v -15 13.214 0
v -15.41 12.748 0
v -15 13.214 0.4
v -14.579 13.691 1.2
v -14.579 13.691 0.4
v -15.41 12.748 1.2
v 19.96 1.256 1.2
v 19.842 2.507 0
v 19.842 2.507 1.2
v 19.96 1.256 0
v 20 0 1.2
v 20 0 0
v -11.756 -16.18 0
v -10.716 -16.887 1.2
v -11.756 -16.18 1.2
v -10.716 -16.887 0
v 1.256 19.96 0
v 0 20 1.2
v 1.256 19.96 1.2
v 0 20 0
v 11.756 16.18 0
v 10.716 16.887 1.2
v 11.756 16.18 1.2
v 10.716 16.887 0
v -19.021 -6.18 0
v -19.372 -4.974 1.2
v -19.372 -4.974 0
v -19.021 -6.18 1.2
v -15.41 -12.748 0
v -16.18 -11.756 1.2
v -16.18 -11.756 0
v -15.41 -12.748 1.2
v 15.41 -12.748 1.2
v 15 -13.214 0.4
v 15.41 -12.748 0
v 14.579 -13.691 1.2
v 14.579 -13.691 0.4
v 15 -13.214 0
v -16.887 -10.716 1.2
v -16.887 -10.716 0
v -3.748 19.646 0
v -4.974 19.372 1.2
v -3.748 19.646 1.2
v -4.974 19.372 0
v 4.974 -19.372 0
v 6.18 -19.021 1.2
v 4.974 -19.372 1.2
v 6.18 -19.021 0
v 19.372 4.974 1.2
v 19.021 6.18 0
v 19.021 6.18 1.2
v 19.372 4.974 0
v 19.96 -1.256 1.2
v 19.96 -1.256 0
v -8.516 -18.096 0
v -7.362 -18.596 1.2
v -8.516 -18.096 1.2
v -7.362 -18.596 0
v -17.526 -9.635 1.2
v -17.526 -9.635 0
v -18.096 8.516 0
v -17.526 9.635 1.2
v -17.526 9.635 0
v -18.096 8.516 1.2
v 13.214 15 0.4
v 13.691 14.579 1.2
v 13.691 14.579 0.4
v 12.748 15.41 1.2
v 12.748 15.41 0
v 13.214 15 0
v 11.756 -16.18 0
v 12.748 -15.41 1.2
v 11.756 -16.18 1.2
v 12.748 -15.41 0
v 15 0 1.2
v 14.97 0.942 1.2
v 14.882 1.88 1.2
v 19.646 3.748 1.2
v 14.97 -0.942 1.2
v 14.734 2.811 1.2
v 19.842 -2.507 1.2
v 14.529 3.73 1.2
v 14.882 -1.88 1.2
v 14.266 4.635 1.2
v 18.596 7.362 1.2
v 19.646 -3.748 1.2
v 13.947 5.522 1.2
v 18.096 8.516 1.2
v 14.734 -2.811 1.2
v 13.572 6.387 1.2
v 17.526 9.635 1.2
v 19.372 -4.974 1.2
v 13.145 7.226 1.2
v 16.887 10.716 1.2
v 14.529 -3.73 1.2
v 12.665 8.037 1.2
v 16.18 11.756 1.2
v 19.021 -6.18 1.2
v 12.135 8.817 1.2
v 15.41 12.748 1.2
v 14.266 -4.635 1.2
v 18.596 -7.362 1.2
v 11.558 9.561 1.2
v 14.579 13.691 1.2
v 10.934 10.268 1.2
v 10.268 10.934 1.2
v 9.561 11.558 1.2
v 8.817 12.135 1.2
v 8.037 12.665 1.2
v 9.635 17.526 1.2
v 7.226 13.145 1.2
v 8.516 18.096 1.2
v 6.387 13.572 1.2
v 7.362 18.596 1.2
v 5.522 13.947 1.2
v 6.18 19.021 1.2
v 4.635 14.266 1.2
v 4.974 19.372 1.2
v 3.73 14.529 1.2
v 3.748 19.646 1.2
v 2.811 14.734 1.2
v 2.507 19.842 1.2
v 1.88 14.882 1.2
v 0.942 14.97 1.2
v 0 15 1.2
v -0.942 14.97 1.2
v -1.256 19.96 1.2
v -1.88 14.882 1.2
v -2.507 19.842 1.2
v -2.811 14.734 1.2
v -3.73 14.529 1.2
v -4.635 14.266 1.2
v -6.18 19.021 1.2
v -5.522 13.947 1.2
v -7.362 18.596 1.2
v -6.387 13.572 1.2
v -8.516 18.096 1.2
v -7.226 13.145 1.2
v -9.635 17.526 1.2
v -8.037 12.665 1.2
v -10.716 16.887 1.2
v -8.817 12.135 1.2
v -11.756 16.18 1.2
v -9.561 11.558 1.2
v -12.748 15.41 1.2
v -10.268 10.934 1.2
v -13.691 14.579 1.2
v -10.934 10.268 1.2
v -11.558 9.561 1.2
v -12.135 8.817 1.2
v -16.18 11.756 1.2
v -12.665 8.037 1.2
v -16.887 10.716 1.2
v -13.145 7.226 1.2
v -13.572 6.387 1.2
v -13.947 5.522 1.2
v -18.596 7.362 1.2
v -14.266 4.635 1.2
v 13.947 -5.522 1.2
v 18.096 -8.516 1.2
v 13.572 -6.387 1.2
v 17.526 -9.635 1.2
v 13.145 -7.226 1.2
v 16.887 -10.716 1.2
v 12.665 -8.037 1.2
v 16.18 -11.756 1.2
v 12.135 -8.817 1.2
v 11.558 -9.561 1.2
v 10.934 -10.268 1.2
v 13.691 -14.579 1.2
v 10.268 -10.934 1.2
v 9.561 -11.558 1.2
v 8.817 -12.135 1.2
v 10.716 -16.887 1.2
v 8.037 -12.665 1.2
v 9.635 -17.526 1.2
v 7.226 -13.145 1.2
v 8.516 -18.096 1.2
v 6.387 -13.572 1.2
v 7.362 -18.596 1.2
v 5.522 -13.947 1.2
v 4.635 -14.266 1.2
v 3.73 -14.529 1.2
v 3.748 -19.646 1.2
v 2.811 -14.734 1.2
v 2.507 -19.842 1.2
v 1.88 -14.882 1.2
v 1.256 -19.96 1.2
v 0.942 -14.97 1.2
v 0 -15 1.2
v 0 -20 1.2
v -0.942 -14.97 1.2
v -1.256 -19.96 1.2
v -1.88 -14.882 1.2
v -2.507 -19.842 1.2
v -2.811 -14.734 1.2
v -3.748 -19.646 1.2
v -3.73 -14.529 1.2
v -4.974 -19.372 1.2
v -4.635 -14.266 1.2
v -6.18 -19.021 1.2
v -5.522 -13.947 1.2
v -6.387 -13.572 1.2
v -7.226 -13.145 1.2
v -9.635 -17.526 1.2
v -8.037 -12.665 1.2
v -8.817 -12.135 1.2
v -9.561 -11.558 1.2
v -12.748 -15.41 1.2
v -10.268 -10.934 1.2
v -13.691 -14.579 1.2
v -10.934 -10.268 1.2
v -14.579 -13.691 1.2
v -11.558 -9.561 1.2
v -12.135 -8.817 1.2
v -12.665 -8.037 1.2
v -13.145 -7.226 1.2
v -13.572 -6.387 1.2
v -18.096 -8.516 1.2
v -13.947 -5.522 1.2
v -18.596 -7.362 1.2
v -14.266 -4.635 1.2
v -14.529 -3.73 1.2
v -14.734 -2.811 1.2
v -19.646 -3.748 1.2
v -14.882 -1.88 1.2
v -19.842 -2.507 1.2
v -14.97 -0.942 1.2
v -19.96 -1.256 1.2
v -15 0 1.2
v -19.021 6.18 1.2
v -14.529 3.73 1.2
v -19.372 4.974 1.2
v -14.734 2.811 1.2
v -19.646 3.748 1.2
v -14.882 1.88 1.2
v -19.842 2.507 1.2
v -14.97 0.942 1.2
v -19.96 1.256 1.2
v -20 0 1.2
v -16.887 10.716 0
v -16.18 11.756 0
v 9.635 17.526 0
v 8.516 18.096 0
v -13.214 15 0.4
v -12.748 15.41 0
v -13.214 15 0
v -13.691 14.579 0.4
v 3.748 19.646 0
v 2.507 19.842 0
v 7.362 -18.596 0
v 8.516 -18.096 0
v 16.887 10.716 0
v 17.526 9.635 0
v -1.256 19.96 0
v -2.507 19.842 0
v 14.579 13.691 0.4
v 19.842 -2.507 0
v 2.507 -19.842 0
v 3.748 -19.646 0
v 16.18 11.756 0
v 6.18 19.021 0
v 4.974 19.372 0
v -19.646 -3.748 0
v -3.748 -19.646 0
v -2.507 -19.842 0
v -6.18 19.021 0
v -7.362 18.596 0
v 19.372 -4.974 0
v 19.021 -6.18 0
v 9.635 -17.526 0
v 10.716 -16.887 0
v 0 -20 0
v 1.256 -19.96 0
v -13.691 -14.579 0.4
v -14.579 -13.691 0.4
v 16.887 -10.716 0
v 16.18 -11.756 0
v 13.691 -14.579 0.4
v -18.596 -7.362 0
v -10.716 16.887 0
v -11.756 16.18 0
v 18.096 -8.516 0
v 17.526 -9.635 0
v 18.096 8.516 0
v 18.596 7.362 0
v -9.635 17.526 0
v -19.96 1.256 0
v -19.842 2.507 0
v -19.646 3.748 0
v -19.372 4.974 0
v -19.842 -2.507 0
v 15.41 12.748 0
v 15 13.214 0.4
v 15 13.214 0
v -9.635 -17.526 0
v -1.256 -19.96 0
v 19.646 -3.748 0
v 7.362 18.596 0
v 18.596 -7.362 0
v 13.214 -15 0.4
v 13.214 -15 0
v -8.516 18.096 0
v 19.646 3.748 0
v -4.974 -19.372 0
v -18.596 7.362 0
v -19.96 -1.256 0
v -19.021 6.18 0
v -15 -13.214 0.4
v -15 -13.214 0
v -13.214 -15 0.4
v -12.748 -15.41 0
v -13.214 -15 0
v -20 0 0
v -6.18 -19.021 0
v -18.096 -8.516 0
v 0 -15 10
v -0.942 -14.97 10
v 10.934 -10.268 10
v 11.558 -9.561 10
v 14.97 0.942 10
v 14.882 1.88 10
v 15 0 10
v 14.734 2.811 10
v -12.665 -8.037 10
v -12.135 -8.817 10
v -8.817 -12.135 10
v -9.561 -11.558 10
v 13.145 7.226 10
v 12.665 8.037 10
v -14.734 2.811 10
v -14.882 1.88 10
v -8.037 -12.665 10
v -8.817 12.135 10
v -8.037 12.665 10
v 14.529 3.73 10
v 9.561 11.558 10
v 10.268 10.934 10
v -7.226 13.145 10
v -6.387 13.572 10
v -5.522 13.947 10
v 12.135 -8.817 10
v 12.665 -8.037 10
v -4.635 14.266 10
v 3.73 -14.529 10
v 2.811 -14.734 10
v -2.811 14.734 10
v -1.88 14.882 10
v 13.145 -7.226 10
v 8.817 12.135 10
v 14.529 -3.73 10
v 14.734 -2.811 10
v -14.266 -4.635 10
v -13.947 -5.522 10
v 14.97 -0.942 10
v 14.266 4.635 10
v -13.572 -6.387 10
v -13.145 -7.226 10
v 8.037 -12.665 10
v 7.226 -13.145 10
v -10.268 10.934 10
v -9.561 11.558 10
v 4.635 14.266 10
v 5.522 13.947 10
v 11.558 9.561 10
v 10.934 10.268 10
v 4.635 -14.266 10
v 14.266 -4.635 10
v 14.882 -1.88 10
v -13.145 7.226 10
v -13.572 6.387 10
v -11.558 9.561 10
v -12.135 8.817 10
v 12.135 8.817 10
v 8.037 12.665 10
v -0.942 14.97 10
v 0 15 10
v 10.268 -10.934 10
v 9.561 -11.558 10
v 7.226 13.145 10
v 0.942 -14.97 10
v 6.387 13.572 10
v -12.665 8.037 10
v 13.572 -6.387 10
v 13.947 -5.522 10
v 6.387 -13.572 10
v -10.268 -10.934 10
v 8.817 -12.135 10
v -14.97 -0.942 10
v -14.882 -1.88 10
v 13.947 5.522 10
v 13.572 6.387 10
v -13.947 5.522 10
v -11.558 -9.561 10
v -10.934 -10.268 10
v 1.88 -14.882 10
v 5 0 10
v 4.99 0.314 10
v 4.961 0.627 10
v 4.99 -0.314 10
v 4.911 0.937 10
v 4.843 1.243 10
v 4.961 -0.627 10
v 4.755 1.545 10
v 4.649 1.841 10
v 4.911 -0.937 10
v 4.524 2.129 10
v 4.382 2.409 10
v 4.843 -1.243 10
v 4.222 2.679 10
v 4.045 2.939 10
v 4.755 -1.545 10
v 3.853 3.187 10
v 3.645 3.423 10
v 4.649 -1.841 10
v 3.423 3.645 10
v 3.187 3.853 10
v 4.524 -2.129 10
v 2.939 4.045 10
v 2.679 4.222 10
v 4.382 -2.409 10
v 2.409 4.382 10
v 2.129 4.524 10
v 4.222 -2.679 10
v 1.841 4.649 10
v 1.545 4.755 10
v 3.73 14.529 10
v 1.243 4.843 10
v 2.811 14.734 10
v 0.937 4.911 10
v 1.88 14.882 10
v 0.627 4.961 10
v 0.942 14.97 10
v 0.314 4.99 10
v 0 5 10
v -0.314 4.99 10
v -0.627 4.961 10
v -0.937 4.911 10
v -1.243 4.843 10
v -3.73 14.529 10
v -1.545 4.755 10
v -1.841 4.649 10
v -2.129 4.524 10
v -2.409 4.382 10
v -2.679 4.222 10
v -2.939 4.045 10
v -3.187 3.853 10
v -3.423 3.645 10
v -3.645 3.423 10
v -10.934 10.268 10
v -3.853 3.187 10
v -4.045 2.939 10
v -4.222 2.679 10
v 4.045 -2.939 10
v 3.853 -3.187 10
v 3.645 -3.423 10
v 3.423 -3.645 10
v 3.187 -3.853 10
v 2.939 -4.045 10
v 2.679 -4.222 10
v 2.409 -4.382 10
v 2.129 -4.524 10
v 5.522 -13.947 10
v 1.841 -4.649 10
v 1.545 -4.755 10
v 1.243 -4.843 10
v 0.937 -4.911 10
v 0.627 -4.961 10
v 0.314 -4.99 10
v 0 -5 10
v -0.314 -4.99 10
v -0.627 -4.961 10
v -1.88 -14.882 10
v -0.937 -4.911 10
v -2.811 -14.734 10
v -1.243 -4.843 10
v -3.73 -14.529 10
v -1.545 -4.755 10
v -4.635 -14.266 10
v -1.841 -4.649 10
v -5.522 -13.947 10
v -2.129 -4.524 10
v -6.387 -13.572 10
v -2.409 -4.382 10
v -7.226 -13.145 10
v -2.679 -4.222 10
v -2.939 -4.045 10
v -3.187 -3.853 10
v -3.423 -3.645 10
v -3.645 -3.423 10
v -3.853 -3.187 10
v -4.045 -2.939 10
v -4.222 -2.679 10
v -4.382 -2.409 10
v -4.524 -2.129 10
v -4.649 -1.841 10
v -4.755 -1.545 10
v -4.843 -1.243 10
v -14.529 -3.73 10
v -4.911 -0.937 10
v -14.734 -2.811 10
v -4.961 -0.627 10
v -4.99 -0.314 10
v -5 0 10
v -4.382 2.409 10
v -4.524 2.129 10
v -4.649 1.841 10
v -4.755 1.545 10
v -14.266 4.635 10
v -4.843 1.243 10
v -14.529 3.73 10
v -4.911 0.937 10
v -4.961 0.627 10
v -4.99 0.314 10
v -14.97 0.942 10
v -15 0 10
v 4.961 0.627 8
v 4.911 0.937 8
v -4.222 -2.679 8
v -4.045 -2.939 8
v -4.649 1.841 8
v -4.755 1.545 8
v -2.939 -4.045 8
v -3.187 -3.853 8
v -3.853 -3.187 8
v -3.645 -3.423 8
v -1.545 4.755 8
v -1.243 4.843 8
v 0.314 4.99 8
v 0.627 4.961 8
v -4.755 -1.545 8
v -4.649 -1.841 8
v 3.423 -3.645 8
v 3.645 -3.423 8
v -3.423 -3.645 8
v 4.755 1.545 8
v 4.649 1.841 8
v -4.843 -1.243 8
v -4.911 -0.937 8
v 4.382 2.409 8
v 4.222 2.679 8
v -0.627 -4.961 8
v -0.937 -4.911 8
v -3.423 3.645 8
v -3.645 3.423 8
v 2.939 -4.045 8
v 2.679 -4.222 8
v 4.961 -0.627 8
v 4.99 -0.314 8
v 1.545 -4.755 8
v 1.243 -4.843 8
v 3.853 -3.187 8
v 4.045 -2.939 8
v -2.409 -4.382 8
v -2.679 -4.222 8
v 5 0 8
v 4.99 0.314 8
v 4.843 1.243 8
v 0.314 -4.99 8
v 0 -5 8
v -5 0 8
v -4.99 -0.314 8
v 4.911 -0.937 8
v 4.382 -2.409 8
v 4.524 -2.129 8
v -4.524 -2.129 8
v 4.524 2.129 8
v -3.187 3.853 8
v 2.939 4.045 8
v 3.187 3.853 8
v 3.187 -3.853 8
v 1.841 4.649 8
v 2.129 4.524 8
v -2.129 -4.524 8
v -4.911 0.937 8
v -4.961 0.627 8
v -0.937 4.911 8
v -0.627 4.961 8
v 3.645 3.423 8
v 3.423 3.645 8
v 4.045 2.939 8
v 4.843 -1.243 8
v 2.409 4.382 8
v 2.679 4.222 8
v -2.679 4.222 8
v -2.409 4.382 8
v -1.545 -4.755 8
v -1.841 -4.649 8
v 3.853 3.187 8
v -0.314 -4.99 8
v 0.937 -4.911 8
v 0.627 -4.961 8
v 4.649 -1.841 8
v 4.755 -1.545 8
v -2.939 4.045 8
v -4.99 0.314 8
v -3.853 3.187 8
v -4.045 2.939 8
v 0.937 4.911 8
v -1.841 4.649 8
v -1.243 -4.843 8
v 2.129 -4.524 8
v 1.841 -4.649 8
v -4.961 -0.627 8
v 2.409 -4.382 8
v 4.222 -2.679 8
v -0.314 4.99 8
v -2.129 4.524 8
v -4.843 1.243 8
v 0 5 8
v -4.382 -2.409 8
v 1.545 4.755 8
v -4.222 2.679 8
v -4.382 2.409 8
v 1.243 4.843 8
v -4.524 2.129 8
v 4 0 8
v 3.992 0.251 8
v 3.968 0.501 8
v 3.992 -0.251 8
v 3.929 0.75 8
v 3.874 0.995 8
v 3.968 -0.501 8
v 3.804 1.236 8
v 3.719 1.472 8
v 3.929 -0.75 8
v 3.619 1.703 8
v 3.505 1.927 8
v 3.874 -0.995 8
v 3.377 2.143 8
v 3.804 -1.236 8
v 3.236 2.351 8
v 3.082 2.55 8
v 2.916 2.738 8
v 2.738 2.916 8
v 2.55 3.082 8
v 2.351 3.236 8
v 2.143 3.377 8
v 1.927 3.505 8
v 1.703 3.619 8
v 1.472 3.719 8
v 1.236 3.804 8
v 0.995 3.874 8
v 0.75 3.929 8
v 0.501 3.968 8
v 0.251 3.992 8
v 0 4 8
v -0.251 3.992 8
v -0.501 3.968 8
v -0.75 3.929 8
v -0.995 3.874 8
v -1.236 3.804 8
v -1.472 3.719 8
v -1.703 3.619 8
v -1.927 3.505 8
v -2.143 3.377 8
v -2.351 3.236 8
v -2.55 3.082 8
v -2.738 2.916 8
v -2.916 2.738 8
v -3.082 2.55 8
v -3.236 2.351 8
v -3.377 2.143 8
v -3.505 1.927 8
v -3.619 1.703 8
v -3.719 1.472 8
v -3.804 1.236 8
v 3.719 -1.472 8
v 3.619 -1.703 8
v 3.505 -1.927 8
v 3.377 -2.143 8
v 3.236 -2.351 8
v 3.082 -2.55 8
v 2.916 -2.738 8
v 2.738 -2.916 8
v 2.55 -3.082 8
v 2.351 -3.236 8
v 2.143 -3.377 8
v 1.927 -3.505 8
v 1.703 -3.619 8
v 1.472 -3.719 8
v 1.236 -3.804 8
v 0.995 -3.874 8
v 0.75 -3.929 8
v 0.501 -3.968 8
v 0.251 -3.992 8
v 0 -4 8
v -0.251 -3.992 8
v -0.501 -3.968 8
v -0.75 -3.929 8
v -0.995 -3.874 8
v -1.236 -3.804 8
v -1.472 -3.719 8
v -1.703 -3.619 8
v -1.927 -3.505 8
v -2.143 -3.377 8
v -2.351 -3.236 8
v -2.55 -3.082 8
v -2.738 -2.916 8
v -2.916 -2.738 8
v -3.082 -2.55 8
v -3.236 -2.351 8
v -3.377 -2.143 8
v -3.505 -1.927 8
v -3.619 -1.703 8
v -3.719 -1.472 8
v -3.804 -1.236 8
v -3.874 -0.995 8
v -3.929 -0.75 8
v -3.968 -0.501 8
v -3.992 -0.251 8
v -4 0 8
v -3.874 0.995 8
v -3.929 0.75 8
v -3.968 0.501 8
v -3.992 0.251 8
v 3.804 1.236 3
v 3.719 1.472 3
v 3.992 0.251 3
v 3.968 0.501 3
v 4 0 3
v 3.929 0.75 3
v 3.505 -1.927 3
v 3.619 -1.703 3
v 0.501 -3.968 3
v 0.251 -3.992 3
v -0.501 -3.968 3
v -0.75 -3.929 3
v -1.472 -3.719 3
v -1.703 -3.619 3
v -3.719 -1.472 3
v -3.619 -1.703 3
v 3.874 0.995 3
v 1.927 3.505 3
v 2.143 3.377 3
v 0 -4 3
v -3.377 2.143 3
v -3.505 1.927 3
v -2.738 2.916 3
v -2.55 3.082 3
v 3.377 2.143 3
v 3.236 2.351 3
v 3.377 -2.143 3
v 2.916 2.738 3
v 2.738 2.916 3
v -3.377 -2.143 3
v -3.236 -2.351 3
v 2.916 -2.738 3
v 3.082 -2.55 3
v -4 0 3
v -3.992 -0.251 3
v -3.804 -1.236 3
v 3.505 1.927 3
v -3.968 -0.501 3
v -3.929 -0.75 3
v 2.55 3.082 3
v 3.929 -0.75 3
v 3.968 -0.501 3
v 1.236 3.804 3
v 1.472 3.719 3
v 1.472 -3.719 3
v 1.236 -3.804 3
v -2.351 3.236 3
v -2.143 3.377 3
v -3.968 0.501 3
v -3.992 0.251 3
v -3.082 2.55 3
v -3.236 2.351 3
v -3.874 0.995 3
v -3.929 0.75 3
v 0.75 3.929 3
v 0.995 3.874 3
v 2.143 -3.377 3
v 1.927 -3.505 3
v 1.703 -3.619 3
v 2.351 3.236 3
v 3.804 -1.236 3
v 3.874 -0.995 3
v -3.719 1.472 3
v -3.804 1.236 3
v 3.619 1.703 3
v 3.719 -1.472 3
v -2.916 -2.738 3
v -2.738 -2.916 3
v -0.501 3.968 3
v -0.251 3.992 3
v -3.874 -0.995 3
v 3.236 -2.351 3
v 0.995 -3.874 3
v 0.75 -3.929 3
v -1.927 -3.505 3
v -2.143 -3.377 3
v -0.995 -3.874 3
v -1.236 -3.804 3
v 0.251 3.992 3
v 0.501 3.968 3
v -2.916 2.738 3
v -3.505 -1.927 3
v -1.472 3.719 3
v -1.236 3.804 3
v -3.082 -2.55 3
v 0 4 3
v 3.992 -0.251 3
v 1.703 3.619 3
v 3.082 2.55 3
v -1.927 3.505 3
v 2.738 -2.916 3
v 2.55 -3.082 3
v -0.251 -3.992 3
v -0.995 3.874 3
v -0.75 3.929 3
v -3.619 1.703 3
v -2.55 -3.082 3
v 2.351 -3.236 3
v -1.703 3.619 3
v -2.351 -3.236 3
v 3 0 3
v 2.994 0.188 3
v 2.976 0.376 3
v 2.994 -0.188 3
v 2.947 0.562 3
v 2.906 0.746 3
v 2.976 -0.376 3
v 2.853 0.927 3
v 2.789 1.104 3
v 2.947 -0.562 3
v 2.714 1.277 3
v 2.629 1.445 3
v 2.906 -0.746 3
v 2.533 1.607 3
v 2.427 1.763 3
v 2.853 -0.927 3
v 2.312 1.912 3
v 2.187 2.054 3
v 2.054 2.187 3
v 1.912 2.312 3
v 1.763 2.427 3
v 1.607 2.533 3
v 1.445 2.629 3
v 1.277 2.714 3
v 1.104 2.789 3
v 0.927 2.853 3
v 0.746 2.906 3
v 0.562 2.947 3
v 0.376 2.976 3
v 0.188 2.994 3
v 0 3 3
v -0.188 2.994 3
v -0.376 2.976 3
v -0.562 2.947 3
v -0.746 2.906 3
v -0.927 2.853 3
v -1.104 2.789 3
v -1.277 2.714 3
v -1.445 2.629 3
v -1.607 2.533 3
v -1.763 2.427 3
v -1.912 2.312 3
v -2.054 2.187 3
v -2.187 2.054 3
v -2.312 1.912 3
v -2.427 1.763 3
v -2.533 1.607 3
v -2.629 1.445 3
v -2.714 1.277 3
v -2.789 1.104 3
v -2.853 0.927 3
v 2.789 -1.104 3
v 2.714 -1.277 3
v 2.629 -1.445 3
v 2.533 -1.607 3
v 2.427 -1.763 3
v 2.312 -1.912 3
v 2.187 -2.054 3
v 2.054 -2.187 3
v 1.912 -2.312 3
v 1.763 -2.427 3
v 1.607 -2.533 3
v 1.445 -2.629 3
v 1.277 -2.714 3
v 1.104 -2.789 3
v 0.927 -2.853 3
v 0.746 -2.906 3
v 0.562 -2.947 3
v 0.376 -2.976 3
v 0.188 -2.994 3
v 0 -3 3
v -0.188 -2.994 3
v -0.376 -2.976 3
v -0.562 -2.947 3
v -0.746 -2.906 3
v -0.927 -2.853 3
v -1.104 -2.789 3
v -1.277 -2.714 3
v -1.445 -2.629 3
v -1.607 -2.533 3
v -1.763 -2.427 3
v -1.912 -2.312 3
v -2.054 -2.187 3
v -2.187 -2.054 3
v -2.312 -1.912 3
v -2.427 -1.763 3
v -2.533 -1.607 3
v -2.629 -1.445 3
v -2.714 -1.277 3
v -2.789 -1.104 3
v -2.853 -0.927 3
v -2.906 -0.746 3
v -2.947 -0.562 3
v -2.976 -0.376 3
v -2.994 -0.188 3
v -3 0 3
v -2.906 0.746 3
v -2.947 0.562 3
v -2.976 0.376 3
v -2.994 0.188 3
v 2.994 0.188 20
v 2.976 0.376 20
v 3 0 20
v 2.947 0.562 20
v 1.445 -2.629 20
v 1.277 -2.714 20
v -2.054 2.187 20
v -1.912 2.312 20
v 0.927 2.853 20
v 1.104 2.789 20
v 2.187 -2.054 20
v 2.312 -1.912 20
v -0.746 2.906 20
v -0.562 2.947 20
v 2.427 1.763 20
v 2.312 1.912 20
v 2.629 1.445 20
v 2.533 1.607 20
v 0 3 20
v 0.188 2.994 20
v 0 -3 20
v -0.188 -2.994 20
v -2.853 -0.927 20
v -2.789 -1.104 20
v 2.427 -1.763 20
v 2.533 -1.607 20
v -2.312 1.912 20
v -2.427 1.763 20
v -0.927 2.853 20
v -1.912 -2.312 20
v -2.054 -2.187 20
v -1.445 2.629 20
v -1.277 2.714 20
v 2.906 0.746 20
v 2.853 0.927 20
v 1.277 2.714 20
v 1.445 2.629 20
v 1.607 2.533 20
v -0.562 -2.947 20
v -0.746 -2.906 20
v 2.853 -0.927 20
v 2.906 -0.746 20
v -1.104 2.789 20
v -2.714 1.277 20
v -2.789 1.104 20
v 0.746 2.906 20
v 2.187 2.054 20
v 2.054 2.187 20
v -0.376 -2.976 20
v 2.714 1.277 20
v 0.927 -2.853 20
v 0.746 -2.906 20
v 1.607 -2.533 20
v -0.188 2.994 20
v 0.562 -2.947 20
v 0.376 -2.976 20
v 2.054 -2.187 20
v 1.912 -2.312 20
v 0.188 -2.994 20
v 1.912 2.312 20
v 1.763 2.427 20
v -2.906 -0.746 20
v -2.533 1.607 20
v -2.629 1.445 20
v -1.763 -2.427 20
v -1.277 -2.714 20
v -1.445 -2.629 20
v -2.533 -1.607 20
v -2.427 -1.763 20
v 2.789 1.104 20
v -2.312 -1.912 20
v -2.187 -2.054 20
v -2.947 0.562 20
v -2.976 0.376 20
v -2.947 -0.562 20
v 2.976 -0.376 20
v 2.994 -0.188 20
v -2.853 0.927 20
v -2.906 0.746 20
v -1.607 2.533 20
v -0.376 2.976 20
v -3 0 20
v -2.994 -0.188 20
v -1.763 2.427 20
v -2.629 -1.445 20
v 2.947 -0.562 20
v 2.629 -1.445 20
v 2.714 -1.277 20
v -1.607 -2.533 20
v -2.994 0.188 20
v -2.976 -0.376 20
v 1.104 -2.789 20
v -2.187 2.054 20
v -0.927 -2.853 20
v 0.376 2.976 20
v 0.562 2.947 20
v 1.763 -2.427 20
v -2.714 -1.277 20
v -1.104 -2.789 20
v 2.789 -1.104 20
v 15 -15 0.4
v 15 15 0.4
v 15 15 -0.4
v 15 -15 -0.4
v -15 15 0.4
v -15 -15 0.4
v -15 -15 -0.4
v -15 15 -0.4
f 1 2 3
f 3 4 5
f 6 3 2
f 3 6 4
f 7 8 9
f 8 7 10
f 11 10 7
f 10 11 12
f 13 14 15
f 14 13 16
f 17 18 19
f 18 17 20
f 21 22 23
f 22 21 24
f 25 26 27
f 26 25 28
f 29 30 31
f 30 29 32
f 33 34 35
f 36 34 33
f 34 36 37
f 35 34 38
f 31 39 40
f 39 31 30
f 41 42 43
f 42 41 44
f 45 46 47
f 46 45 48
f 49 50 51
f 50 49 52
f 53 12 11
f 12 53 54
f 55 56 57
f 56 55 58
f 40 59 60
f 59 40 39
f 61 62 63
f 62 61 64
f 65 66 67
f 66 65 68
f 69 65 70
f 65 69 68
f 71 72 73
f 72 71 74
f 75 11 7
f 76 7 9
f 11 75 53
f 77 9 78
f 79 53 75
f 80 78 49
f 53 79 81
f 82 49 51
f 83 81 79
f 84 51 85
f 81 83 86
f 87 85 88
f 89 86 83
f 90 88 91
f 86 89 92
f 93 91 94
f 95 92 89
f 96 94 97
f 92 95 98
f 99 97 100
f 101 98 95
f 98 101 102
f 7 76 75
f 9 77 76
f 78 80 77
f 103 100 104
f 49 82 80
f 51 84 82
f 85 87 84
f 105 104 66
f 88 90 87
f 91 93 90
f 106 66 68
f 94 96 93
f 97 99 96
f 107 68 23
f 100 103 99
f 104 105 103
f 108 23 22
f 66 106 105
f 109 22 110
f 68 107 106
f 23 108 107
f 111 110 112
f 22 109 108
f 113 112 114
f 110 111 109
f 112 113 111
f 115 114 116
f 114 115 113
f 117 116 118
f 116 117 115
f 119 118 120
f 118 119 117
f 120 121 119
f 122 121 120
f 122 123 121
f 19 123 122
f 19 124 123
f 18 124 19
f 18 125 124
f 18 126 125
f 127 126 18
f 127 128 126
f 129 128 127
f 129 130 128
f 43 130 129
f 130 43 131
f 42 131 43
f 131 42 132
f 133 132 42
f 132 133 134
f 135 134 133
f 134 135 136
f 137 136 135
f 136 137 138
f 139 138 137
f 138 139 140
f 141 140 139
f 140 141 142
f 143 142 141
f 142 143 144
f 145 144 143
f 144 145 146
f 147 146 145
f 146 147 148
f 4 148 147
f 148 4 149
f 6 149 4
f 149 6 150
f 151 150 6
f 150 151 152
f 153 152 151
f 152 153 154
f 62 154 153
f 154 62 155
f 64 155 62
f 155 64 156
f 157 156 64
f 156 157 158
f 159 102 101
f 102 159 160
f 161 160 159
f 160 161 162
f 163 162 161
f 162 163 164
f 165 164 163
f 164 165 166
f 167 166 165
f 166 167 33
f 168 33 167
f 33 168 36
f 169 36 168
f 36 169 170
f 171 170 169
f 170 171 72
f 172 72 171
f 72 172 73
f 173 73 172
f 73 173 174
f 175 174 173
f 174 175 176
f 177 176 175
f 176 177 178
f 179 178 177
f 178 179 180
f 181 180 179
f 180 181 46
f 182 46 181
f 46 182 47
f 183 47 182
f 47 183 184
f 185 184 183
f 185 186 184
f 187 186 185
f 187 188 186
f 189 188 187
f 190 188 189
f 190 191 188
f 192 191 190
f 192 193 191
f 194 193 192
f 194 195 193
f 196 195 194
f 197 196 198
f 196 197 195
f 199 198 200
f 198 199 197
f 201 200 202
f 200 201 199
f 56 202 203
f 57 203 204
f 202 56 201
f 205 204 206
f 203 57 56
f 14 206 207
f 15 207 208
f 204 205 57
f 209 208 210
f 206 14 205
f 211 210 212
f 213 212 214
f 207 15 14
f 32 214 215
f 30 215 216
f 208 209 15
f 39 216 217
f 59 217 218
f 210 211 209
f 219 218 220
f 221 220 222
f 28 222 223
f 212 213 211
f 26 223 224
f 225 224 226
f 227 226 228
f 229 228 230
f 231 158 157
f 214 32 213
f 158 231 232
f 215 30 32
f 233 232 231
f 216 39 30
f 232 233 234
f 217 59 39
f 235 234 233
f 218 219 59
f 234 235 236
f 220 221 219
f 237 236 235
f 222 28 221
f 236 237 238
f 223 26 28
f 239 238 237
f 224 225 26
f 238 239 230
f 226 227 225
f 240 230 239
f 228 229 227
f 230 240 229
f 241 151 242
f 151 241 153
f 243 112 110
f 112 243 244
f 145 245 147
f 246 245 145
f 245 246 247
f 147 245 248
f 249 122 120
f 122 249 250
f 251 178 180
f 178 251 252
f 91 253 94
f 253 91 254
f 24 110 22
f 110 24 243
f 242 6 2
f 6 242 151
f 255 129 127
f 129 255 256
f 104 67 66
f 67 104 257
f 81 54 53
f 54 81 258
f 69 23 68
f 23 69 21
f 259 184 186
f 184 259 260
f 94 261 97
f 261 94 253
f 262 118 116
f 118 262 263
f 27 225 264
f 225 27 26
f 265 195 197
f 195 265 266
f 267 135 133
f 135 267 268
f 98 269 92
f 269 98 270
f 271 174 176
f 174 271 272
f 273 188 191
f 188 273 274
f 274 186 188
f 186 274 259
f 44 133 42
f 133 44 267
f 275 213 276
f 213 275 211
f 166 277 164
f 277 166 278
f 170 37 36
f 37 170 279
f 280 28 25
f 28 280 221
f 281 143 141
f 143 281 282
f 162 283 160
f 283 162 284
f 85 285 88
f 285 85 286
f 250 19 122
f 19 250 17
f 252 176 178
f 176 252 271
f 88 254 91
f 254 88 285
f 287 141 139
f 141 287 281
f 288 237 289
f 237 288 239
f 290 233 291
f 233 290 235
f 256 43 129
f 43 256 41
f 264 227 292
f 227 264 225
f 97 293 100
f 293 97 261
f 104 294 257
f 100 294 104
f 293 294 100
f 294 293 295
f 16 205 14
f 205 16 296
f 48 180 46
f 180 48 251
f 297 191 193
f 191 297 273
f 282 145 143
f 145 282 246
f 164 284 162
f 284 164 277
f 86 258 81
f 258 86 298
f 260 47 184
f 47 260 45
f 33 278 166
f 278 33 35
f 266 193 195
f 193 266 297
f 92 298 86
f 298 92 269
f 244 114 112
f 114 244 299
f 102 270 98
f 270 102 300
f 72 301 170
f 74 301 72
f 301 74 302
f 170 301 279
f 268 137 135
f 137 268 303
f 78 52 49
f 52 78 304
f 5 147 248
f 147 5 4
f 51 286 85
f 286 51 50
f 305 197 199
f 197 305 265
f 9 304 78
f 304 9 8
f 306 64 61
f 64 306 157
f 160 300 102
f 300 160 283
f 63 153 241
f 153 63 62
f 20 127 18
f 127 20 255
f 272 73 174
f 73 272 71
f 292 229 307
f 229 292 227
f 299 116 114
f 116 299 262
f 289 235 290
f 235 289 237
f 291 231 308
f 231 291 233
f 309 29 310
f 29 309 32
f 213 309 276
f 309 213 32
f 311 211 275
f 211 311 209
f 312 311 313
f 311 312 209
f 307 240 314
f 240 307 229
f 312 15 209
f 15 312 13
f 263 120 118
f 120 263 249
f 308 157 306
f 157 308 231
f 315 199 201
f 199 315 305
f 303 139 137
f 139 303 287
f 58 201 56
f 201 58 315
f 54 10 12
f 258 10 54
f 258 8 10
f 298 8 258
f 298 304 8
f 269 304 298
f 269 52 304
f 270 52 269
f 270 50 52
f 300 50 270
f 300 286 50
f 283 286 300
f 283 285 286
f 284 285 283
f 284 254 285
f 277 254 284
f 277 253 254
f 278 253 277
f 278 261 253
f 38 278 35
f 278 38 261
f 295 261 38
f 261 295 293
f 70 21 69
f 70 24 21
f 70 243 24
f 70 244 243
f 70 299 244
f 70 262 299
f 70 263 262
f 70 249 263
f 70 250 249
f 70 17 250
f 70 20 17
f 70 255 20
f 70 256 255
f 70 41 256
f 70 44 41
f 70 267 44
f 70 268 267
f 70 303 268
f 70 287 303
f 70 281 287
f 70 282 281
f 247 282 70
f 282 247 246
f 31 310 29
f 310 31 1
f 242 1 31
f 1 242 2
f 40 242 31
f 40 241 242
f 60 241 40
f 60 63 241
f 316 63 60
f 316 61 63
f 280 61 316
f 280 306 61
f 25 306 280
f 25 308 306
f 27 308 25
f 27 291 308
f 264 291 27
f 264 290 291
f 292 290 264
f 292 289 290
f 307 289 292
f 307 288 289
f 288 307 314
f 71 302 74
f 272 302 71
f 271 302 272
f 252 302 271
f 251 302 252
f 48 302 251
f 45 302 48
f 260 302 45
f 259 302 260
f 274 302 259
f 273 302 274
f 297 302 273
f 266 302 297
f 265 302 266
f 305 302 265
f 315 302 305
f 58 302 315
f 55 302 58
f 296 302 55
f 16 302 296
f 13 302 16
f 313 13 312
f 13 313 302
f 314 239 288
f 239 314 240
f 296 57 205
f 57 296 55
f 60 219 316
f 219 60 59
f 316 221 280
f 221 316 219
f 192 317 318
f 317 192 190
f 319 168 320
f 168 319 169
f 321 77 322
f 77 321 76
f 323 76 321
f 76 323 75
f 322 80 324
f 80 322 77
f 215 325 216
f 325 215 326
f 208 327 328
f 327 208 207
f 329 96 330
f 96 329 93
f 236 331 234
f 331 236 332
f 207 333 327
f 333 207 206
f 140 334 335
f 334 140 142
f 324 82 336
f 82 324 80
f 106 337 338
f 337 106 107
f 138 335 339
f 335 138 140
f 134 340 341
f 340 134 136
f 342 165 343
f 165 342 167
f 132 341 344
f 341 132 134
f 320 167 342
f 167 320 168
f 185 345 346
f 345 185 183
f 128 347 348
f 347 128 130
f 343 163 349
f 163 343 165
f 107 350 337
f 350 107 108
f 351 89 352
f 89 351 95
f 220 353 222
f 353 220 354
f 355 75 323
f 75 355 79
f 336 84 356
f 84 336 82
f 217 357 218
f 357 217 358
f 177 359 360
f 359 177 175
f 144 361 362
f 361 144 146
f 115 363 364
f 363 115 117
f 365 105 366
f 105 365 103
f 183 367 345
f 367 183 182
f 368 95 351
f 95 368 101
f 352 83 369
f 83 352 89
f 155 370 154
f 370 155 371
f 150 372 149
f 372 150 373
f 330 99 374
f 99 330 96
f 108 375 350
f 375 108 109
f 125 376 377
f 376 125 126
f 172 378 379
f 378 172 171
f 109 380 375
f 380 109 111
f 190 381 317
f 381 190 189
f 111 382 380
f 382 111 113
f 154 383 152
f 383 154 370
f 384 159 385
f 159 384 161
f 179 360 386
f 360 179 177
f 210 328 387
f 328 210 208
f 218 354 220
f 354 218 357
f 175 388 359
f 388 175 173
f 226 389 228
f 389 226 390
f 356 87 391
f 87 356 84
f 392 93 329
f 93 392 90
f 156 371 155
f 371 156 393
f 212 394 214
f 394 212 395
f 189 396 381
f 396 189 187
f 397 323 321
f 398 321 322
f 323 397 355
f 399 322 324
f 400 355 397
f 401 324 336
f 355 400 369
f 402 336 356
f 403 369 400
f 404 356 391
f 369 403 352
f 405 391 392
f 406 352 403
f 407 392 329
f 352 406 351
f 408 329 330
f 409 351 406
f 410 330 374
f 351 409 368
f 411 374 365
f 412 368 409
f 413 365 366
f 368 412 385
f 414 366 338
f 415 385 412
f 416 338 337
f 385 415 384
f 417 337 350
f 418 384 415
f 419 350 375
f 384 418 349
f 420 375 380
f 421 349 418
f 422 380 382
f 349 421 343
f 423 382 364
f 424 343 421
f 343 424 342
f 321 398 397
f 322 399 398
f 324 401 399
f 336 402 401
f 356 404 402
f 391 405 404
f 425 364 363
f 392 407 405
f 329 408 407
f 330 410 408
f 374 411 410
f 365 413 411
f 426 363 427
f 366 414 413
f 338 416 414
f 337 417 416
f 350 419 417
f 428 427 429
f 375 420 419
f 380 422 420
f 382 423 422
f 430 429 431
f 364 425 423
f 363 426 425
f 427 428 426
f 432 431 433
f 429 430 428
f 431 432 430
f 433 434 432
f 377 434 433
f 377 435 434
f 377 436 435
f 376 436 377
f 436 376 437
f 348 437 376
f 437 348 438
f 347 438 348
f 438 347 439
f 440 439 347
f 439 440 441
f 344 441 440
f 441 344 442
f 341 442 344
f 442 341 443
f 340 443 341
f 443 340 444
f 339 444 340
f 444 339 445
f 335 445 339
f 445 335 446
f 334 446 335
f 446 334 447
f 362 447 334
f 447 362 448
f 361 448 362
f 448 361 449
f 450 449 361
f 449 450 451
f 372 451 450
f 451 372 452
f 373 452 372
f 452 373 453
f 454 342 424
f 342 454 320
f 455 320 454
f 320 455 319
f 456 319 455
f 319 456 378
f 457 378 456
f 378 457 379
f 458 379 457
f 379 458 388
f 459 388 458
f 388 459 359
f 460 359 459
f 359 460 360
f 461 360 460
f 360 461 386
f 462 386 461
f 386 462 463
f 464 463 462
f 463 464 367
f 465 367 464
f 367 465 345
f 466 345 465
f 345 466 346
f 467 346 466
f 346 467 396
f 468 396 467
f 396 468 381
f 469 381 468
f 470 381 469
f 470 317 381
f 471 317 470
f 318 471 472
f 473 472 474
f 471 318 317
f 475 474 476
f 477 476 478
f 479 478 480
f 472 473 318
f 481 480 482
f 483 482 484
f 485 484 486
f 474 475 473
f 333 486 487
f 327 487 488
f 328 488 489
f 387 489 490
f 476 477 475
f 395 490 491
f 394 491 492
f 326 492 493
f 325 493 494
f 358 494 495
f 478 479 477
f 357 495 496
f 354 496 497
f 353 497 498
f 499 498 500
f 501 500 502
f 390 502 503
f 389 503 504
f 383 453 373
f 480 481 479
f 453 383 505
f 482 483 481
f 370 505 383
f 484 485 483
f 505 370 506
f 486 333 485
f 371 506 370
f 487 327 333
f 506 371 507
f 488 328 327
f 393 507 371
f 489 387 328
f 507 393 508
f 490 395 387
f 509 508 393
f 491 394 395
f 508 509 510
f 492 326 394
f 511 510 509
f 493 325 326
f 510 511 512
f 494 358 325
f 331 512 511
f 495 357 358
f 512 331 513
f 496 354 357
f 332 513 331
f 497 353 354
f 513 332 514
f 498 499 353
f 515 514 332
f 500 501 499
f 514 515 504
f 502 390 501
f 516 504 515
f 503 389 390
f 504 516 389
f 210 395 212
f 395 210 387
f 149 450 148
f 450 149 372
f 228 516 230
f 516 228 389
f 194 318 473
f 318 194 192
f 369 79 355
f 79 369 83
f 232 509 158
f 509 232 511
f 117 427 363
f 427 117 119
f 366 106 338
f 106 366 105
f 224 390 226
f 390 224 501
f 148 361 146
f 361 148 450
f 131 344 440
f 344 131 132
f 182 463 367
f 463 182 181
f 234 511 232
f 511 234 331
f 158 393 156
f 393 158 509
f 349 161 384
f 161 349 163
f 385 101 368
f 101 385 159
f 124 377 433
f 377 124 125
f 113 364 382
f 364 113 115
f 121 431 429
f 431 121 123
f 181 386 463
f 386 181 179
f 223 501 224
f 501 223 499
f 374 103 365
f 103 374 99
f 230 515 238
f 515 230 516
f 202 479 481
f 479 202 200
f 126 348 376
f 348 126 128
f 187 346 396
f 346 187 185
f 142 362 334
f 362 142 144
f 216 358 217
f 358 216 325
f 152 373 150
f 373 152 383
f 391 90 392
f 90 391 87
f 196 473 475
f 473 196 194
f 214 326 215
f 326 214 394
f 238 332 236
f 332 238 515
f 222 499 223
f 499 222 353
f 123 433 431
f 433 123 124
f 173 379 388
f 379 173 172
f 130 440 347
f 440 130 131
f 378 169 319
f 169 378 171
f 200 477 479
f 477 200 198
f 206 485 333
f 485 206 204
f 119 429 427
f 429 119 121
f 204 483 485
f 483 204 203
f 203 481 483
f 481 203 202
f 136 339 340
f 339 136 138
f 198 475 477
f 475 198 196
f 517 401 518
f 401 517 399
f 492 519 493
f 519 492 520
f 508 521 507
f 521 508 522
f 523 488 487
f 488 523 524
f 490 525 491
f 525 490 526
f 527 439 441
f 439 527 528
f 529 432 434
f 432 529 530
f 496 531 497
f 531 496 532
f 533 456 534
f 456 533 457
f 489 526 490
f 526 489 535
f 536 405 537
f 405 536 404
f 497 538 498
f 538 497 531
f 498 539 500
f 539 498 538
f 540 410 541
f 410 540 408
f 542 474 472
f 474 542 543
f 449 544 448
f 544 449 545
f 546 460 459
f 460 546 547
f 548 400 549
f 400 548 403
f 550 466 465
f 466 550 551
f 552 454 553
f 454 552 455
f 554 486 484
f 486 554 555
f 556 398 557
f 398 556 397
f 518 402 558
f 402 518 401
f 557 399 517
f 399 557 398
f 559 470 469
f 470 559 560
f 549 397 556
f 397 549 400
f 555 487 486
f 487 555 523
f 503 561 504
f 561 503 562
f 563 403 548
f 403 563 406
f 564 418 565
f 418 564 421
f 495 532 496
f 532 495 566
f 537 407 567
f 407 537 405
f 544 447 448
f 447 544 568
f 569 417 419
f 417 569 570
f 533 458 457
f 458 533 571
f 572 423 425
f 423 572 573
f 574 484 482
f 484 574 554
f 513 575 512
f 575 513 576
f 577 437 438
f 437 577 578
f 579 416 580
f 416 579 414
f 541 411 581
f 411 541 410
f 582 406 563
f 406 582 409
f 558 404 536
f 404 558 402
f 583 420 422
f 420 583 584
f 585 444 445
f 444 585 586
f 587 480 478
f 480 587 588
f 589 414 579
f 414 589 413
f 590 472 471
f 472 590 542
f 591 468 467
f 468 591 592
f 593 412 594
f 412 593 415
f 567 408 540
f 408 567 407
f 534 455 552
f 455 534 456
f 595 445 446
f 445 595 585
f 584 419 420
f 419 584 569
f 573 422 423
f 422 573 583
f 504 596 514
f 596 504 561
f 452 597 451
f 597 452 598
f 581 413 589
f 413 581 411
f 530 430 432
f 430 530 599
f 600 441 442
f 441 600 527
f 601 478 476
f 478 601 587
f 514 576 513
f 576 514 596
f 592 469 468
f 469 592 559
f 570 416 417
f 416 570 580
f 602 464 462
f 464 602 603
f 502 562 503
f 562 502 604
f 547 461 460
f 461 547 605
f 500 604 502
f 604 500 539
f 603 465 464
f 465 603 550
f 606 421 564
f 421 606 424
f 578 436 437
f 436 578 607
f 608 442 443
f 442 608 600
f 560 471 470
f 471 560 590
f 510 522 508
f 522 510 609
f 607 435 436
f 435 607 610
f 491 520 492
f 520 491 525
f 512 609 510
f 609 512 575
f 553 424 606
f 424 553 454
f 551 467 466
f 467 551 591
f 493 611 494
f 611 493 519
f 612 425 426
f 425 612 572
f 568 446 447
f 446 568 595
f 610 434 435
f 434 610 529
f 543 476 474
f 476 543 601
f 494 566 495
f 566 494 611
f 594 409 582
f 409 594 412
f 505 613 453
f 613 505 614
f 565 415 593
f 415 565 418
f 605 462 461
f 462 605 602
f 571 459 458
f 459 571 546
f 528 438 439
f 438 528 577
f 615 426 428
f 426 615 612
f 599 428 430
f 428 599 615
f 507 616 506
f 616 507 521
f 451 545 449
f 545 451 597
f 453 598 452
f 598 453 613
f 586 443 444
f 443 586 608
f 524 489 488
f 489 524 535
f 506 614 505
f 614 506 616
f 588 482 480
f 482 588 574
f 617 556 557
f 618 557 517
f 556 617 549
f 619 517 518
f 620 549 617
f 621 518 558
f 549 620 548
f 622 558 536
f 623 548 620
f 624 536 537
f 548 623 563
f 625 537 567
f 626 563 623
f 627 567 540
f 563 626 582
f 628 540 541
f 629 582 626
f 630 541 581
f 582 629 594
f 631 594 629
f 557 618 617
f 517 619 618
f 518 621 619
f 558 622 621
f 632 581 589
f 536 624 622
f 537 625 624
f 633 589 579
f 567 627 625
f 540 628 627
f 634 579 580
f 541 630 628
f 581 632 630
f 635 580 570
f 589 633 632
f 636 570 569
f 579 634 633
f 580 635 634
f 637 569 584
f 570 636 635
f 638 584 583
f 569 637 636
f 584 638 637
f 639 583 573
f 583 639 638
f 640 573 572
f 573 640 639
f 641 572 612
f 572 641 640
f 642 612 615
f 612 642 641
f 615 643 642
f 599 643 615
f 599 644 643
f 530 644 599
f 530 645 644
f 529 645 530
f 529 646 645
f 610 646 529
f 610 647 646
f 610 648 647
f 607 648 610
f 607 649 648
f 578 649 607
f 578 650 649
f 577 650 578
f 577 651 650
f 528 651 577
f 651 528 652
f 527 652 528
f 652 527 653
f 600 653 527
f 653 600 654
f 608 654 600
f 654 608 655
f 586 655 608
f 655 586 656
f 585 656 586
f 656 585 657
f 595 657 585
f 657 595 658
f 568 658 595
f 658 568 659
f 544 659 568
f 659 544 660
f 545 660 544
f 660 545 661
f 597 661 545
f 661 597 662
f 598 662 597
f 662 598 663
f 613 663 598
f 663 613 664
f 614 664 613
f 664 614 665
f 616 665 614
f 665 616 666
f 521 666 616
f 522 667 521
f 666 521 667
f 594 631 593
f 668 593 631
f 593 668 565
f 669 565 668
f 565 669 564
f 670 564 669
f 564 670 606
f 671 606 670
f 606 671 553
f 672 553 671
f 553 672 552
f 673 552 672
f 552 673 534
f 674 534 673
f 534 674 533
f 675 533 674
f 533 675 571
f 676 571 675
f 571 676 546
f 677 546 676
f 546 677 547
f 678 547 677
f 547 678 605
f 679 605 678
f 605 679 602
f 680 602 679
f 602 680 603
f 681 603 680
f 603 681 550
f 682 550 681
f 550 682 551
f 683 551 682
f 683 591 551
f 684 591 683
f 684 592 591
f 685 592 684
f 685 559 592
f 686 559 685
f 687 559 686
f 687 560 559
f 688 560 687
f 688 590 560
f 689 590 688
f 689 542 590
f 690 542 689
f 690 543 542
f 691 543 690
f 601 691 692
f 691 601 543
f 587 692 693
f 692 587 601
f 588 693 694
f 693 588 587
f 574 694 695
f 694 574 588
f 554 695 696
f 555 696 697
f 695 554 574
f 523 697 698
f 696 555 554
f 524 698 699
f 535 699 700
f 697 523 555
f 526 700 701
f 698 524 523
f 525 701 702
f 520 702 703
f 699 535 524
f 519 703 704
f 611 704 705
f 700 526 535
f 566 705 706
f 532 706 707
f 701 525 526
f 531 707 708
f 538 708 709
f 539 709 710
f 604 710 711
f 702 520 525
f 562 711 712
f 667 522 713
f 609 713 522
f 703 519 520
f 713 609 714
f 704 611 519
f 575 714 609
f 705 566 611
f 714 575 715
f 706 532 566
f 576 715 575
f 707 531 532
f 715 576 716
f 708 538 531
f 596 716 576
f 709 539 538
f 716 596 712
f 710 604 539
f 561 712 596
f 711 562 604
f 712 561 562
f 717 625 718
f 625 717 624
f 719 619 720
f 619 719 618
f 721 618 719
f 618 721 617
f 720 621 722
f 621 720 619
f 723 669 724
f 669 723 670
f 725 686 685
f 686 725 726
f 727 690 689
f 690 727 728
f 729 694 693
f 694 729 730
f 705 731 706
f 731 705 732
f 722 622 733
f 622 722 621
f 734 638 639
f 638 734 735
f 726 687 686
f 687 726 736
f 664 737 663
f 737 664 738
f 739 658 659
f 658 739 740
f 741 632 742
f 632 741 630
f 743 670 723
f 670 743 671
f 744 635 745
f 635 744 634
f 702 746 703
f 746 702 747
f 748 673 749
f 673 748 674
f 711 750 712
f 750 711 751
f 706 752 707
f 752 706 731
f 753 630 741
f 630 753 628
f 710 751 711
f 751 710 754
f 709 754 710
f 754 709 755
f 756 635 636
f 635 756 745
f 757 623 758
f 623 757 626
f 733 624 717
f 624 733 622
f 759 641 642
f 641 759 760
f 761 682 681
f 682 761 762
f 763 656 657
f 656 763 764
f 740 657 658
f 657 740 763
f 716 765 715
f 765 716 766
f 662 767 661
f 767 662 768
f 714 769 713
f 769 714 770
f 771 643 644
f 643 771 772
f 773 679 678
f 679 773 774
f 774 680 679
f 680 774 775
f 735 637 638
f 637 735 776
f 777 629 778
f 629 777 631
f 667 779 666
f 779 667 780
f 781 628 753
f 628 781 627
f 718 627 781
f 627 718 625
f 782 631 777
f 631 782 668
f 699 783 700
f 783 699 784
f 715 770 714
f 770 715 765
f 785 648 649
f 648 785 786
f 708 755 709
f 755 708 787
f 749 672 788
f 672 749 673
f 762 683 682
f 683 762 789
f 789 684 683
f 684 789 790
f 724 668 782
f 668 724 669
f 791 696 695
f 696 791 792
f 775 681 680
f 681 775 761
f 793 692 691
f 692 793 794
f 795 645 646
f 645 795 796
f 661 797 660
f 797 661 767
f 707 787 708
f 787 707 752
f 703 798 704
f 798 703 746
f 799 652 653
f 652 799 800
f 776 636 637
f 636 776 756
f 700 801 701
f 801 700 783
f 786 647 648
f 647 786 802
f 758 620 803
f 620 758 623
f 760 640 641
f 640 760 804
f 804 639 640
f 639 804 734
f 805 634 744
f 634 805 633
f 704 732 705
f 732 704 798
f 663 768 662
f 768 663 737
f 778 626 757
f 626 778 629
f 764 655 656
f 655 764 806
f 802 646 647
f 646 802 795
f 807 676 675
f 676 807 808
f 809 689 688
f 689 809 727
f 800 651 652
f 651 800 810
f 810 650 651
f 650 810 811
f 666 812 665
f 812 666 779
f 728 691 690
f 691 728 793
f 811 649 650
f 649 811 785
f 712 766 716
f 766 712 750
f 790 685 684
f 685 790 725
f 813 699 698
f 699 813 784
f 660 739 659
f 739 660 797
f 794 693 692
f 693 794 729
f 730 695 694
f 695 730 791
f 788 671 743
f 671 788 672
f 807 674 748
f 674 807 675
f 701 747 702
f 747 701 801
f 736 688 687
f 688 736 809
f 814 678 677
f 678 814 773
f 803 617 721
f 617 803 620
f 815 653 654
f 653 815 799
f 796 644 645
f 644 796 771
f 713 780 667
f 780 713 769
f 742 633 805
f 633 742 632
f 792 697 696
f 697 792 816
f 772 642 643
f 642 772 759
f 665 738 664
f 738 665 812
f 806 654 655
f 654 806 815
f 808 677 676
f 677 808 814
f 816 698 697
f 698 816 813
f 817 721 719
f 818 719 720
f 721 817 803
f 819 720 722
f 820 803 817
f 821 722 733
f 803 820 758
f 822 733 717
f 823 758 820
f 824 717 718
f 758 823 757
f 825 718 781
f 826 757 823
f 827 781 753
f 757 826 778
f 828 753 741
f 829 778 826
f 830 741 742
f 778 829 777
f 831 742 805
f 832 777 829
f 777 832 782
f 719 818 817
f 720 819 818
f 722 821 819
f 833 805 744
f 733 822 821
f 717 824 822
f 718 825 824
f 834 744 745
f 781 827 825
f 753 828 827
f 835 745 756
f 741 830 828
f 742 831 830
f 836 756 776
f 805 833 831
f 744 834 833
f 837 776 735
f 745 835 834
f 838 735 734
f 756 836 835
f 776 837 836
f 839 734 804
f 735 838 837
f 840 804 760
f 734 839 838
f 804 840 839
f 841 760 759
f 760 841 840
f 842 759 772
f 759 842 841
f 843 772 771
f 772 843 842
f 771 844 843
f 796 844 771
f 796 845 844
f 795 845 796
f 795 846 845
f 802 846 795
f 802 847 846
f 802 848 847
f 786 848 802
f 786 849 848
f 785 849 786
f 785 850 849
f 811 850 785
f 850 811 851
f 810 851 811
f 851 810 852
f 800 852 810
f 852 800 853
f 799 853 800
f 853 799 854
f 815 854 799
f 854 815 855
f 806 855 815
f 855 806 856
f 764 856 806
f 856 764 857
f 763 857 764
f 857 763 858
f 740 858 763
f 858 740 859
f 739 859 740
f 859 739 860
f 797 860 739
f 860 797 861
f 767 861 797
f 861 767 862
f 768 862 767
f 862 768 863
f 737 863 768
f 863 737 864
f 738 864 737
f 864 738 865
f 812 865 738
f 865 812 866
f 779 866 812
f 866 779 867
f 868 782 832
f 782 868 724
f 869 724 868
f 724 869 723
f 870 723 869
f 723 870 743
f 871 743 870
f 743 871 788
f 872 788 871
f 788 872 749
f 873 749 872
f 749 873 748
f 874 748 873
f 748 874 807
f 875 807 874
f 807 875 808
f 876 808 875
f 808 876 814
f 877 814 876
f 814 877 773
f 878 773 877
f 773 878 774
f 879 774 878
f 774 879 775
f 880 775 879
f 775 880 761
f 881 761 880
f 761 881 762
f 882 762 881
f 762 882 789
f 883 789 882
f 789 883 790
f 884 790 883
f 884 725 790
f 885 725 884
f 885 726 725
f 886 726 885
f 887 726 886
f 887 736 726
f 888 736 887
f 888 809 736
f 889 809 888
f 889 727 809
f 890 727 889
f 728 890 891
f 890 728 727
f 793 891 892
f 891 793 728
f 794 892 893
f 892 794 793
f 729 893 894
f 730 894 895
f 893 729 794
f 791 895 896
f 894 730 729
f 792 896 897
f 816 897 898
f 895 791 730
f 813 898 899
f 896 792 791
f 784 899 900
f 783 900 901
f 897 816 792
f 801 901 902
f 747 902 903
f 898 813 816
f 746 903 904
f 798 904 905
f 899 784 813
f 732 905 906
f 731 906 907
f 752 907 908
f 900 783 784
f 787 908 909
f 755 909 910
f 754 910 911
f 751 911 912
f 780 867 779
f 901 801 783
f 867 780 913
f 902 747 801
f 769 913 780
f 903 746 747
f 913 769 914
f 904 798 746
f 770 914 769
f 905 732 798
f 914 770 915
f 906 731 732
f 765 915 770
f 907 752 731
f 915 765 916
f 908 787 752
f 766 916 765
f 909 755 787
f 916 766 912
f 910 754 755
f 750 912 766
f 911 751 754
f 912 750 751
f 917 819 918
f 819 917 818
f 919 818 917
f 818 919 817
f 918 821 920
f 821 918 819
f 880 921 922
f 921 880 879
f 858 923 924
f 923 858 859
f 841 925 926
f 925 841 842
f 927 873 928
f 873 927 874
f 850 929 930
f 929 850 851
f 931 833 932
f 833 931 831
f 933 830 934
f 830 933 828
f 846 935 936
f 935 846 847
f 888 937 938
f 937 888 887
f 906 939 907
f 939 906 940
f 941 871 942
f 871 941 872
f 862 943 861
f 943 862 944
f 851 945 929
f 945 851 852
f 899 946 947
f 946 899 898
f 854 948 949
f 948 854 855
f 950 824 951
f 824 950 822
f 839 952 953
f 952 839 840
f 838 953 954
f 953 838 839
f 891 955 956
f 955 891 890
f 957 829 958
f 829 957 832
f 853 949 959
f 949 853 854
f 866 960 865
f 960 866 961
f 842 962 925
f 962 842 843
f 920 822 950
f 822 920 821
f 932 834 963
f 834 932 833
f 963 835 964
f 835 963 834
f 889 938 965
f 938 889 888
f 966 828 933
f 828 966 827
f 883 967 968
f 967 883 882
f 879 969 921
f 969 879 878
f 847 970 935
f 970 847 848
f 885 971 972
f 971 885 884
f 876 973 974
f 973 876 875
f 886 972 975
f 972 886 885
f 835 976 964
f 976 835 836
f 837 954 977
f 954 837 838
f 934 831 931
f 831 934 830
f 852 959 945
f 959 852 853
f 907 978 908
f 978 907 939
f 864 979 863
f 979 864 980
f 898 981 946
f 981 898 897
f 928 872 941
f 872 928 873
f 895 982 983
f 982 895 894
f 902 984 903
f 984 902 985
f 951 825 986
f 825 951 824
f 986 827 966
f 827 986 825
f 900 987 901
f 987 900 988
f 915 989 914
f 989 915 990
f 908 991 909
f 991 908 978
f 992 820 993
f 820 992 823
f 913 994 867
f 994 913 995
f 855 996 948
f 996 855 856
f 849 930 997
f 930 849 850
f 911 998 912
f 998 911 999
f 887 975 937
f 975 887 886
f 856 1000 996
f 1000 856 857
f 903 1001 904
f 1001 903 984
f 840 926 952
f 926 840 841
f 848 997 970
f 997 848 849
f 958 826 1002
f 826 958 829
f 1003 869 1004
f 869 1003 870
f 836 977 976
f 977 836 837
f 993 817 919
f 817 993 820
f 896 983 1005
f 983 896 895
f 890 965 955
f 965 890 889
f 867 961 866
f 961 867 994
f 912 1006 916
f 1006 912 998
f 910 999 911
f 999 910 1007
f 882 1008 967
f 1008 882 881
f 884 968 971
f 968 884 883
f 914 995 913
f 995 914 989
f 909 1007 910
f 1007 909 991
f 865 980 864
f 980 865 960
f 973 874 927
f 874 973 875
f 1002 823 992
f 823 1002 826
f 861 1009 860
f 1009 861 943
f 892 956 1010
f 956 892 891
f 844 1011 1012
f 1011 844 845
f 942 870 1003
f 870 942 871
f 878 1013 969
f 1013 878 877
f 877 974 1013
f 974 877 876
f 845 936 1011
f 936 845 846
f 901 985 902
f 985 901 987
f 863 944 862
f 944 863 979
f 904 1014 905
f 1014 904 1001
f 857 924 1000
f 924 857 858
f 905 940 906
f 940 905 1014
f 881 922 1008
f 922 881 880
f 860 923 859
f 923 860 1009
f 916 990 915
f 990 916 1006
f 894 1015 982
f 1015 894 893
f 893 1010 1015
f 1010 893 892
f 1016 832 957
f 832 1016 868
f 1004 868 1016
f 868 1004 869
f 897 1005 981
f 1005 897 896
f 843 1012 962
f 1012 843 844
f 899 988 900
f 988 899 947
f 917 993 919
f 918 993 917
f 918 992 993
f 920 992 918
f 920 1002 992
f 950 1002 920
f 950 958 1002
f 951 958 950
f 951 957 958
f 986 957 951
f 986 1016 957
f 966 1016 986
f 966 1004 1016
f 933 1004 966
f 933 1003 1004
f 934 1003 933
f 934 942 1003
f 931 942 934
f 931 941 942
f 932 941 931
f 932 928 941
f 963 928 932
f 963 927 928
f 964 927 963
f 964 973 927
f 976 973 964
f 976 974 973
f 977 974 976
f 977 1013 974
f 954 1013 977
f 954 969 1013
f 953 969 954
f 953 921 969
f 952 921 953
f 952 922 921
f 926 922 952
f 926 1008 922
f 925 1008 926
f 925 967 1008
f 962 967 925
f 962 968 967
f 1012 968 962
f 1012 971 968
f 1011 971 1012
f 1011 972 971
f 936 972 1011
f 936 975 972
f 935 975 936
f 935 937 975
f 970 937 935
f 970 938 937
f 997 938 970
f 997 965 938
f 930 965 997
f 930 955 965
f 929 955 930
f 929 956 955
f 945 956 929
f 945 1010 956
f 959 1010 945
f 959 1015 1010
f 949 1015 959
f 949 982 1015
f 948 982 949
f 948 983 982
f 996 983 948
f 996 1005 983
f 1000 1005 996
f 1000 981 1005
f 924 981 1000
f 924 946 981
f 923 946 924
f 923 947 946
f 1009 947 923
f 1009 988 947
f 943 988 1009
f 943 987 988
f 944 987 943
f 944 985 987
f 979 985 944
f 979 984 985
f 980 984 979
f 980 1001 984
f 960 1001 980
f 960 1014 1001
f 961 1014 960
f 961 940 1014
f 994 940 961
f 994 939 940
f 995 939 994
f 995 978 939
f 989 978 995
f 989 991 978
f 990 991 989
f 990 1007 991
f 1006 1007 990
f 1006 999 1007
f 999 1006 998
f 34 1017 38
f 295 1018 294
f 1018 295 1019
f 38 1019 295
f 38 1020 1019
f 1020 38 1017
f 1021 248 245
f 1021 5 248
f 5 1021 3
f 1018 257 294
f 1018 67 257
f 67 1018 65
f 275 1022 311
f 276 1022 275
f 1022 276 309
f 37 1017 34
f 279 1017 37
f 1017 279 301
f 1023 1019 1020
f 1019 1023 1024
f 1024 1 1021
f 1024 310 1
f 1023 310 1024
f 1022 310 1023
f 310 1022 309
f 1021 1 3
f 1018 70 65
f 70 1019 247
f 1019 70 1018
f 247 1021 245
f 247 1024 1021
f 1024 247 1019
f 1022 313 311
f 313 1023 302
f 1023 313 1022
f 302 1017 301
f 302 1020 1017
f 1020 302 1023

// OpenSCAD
// Spacer Ring Component
module spacer_ring() {
    difference() {
        // Outer cylinder
        cylinder(h = 1.2, r = 20, $fn = 100); // Reduced height to match original model's flatness
        // Inner hollow
        cylinder(h = 1.3, r = 10, $fn = 100); // Adjusted height to ensure proper hollowing
    }
}

// Render the spacer ring
spacer_ring();

// Flange Plate Component
module flange_plate() {
    cube([30, 30, 0.8], center = true); // Reduced thickness to match original model's flatness
}

// Render the flange plate
flange_plate();

// Central Craft Component
module central_craft() {
    difference() {
        // Outer cylinder
        cylinder(h = 10, r = 15, $fn = 100);
        // Inner hollow
        cylinder(h = 10.1, r = 5, $fn = 100);
    }
}

// Render the central craft
central_craft();

// Input Craft Component
module input_craft() {
    difference() {
        // Outer cylinder
        cylinder(h = 8, r = 12, $fn = 100);
        // Inner hollow
        cylinder(h = 8.1, r = 4, $fn = 100);
    }
}

// Render the input craft
input_craft();

// Output Craft Component
module output_craft() {
    difference() {
        // Outer cylinder
        cylinder(h = 8, r = 12, $fn = 100);
        // Inner hollow
        cylinder(h = 8.1, r = 4, $fn = 100);
    }
}

// Render the output craft
output_craft();

// Nut Component
module nut() {
    difference() {
        // Hexagonal outer shape
        rotate([0, 0, 30]) {
            linear_extrude(height = 3) {
                polygon(points = [[-5, -8], [5, -8], [8, -5], [8, 5], [5, 8], [-5, 8], [-8, 5], [-8, -5]]);
            }
        }
        // Threaded interior
        cylinder(h = 3.1, r = 3, $fn = 100);
    }
}

// Render the nut
nut();

// Bolt Component
module bolt() {
    union() {
        // Cylindrical body
        cylinder(h = 20, r = 3, $fn = 100);
        // Flat head
        cylinder(h = 2, r = 5, $fn = 100);
    }
}

// Render the bolt
bolt();
